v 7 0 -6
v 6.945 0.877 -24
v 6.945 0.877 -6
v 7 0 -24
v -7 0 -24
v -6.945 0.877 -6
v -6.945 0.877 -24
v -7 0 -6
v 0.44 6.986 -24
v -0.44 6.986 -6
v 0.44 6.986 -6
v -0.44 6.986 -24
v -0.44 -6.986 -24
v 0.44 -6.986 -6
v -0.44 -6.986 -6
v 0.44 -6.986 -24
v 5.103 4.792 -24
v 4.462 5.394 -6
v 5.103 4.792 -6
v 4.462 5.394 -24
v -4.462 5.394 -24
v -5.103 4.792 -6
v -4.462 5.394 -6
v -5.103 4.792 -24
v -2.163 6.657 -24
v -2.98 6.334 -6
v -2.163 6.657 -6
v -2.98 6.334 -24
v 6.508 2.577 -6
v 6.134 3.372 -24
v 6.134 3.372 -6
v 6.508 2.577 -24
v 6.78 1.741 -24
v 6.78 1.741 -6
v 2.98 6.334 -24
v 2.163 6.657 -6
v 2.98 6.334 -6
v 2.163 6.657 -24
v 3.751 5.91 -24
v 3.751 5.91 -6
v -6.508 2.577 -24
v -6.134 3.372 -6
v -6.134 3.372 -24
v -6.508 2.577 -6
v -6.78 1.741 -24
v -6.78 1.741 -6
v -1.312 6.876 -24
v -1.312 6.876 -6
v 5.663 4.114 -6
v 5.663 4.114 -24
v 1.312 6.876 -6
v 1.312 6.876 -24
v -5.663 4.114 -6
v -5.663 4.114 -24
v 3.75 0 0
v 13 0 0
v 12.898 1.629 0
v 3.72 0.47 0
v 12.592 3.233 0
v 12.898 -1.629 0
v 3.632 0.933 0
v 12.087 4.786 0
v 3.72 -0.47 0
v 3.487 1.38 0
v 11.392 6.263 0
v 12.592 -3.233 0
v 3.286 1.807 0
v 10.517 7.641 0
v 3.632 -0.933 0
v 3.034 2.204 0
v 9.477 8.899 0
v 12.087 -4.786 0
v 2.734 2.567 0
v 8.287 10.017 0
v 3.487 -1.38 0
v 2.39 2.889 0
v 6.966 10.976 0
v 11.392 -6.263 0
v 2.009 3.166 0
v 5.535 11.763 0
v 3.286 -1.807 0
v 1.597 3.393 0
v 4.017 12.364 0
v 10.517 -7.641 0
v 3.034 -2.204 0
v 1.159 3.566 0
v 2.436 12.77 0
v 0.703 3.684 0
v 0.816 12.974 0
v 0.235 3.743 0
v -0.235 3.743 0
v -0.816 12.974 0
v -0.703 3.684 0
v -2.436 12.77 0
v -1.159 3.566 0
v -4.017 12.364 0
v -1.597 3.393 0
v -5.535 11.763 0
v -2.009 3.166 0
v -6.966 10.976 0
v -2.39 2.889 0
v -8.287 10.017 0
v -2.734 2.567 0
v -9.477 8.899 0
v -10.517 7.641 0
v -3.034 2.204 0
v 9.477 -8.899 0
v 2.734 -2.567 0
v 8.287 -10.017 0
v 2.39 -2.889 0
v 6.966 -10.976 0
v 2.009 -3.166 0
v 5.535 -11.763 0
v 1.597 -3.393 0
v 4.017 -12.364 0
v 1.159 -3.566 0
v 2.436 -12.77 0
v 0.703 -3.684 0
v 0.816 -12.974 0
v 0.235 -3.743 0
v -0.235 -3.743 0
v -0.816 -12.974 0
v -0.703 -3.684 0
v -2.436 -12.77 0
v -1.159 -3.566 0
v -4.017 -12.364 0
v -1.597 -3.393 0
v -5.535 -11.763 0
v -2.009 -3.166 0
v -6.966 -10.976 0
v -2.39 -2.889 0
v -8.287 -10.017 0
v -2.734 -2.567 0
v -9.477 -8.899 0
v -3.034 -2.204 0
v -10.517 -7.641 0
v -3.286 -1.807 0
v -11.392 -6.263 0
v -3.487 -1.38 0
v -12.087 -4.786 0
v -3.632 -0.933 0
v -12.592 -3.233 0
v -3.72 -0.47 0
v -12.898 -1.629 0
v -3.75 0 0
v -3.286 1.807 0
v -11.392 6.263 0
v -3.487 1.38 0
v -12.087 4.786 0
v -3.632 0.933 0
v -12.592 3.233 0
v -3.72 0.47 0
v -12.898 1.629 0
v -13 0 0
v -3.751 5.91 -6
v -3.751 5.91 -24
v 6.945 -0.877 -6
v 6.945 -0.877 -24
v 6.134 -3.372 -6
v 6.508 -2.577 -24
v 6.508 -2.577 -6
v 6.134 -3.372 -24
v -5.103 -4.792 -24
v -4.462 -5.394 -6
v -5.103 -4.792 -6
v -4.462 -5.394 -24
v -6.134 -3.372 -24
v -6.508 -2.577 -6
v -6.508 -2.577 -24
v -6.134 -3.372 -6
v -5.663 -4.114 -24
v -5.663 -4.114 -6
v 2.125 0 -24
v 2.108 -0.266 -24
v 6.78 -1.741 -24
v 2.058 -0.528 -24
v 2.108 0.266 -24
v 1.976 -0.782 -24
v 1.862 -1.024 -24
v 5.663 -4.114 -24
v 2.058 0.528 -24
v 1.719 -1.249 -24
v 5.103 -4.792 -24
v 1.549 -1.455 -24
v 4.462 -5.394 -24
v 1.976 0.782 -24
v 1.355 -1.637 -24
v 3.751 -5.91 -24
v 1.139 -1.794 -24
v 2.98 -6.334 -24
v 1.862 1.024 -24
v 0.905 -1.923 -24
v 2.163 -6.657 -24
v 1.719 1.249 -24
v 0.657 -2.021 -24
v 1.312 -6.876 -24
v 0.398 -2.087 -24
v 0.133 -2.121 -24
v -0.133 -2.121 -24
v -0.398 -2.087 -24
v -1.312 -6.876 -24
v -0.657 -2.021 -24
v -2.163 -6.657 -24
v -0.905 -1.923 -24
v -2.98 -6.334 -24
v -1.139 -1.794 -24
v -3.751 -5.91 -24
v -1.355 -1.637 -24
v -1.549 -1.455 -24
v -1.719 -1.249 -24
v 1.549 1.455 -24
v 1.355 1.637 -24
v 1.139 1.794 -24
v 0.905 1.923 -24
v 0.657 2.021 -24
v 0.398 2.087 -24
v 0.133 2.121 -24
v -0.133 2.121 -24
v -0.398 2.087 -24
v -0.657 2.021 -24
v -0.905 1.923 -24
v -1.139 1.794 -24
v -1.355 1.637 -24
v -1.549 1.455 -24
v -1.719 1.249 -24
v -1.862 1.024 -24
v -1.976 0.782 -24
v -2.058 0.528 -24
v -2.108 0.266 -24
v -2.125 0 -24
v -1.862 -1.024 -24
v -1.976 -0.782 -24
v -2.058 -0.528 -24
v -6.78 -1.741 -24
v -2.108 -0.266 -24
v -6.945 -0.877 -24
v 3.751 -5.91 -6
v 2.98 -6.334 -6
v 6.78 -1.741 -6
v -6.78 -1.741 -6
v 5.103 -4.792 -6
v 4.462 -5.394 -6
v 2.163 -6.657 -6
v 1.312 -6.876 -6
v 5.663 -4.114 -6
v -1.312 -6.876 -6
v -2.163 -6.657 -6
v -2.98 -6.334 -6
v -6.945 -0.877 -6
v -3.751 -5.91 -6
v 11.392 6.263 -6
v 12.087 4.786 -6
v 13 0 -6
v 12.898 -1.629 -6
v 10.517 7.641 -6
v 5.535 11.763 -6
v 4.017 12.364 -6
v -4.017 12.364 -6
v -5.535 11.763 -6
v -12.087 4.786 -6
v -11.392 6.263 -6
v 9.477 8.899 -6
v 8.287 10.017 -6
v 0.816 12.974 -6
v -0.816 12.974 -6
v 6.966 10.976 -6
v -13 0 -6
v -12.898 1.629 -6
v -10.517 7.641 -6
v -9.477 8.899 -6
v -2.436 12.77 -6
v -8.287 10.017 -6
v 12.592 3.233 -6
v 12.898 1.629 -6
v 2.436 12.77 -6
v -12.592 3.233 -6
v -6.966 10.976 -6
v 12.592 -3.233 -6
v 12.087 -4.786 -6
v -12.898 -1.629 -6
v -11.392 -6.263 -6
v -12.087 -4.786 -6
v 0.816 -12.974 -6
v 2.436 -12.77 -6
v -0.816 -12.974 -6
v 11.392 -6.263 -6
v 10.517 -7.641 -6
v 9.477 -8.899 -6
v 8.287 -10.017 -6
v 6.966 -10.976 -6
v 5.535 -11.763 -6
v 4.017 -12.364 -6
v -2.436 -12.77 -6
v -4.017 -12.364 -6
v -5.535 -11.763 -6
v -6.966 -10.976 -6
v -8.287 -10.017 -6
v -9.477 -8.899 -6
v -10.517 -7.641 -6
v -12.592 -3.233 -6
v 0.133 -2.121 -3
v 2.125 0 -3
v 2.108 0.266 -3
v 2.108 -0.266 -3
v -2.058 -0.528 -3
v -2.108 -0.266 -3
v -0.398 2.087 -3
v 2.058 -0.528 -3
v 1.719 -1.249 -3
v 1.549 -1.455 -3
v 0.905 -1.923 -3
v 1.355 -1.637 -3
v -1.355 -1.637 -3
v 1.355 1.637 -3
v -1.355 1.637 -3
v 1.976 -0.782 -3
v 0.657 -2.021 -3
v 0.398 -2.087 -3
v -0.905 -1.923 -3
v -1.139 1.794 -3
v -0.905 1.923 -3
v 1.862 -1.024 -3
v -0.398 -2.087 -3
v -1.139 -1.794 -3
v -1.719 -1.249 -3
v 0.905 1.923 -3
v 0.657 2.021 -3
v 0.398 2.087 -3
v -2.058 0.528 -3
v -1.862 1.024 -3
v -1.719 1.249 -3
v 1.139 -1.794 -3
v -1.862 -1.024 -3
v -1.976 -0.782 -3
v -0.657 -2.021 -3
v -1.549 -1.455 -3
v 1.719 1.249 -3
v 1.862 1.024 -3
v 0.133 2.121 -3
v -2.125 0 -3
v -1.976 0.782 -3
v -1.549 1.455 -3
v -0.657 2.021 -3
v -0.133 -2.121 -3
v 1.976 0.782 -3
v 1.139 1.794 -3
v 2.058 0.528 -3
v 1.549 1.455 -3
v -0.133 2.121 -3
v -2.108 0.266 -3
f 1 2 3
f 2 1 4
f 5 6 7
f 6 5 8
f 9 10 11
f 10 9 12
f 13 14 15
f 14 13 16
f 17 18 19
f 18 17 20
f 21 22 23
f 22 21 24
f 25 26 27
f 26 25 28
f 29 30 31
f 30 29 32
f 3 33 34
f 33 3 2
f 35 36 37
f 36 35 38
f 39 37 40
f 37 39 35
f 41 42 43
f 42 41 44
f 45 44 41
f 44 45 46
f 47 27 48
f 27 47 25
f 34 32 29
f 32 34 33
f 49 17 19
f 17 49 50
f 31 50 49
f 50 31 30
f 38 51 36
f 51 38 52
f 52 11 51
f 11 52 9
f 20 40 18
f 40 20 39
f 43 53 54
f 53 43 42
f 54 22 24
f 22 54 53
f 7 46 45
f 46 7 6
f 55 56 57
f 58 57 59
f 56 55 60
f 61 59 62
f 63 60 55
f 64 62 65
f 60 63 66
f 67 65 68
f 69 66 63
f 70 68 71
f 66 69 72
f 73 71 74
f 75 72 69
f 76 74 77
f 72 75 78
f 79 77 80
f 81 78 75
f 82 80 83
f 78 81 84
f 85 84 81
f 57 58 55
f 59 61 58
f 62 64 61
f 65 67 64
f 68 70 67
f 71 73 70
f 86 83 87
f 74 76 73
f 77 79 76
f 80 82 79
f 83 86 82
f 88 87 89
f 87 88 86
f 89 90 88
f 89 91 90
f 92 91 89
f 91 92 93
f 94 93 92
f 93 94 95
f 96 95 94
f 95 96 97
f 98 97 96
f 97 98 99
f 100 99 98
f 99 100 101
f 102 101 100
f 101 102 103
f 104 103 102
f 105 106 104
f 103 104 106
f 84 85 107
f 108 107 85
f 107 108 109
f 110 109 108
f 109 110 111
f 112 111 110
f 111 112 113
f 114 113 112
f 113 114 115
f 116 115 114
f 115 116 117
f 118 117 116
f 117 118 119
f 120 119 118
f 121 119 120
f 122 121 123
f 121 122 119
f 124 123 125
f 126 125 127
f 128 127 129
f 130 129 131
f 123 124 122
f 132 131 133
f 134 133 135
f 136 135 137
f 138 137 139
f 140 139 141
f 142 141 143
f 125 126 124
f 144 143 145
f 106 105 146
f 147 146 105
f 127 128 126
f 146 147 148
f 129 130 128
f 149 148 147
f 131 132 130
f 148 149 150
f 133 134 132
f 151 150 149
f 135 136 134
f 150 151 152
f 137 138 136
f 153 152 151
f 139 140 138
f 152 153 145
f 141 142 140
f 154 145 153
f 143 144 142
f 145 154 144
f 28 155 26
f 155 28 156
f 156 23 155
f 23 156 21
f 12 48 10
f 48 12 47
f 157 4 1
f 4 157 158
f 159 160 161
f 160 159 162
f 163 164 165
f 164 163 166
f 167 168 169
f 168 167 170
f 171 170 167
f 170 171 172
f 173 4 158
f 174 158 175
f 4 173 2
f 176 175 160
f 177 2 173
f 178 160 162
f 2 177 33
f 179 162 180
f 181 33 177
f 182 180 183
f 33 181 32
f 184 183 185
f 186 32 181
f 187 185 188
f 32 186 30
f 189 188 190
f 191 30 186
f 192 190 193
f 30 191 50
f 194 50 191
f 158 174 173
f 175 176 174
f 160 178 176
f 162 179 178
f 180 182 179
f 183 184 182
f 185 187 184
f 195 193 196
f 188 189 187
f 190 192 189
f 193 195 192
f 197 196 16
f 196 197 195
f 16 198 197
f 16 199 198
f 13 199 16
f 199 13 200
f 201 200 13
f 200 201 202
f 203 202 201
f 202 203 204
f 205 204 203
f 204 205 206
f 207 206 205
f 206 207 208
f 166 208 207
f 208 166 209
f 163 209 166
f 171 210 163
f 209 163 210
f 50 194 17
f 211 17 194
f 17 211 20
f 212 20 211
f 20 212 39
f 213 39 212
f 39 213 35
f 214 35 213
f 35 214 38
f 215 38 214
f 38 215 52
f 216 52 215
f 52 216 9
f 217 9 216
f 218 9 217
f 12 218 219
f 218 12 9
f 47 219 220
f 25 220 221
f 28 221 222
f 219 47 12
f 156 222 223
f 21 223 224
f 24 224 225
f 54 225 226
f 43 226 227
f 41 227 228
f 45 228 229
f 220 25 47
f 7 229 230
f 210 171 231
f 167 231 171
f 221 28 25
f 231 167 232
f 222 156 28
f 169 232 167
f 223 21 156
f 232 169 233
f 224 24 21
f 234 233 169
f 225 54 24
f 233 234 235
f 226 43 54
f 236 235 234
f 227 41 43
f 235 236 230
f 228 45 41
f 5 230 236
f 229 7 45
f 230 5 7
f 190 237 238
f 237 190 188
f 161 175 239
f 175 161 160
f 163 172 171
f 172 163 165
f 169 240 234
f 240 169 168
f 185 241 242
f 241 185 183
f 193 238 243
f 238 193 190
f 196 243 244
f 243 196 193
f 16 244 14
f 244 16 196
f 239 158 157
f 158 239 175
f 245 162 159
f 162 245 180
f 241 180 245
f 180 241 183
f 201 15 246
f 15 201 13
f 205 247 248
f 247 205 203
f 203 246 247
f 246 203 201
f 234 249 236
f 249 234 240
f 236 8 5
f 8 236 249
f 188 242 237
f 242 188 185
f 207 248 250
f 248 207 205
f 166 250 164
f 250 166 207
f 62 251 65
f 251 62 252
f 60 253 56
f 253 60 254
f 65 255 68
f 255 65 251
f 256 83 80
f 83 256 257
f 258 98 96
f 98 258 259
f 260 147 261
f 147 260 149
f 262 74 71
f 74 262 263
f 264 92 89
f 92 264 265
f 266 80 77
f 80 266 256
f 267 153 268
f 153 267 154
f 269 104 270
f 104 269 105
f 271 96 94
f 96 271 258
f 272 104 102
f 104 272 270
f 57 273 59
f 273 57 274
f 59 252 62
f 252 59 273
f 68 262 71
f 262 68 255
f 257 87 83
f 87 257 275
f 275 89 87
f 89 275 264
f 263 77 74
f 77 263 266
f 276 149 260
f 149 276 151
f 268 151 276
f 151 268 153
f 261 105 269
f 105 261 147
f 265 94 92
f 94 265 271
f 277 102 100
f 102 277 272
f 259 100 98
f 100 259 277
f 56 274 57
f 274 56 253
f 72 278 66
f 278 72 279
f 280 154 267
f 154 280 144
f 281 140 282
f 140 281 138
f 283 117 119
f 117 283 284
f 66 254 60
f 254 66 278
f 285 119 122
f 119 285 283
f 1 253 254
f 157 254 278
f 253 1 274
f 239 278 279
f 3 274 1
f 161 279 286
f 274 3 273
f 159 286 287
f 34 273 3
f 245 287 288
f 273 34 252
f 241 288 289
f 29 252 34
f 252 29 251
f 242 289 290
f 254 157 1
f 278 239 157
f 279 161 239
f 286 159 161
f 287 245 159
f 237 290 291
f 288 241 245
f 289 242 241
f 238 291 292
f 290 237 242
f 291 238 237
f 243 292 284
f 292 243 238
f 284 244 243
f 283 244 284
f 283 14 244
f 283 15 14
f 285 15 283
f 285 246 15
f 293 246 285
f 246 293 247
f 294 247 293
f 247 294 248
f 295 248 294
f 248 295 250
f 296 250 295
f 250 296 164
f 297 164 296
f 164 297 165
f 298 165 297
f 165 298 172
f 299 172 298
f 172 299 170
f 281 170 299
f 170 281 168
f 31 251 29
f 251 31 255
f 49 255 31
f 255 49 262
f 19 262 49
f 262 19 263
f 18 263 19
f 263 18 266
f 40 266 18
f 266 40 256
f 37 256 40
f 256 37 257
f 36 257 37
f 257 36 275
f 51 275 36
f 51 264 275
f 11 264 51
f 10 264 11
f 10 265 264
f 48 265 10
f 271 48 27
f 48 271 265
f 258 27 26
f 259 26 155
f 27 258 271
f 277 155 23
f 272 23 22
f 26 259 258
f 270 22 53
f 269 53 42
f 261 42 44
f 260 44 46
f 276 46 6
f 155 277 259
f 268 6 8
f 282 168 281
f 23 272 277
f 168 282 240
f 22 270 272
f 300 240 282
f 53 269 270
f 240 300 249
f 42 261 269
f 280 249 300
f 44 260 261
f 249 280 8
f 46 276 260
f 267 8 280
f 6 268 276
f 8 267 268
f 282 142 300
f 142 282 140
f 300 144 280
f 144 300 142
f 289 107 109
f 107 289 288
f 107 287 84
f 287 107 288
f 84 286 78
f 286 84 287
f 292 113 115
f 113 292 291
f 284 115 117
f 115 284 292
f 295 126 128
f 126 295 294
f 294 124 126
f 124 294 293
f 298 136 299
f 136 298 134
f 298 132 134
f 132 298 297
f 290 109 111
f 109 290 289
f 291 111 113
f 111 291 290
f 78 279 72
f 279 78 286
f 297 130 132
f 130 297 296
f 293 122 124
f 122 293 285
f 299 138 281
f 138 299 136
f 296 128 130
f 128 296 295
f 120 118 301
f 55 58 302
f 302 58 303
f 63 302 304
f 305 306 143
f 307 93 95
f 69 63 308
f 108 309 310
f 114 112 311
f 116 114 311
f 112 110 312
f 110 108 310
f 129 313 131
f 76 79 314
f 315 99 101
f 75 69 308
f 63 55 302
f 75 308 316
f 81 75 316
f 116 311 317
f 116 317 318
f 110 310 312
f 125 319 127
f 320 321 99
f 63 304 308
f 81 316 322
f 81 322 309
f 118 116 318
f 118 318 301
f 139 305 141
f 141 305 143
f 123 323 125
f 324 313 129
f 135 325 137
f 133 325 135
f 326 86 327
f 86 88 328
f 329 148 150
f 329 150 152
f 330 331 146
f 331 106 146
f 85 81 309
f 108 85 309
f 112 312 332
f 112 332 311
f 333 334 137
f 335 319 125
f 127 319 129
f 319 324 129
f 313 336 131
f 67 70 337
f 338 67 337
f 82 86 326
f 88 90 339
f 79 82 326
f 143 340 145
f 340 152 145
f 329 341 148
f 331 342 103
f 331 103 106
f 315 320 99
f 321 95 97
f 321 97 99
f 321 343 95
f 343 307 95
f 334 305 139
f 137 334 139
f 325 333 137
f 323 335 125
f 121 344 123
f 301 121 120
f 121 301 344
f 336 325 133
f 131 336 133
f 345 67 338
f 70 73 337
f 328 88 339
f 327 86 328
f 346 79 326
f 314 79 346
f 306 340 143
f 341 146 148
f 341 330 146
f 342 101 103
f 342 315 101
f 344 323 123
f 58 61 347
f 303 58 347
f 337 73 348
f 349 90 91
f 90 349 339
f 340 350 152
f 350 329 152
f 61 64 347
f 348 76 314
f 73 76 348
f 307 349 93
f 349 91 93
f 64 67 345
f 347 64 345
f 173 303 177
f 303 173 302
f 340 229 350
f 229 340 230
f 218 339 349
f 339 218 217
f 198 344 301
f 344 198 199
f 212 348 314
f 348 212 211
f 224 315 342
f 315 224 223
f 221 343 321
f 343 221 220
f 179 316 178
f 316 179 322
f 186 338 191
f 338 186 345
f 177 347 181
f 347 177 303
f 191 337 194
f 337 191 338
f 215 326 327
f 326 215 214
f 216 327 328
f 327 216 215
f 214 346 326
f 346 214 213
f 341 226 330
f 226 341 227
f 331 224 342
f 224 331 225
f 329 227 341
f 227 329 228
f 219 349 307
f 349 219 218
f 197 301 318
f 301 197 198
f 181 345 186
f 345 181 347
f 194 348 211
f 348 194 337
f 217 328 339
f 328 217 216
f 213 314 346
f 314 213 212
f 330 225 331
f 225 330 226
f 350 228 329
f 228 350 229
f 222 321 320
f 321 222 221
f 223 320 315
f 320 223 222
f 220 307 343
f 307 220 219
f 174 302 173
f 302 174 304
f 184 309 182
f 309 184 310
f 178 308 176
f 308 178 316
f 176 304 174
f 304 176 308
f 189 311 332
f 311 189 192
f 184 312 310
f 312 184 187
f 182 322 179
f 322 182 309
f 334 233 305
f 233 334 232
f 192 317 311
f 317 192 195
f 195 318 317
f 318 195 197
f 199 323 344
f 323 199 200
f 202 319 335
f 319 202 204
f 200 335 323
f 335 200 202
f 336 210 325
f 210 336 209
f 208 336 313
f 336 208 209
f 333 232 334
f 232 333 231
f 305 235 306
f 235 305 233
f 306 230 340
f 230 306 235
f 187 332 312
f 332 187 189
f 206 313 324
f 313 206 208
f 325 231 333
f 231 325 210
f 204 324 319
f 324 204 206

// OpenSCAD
$fn = 50;


difference() {
	union() {
		translate(v = [0, 0, -24.0000000000]) {
			cylinder(h = 24, r = 7.0000000000);
		}
		translate(v = [0, 0, -6.0000000000]) {
			cylinder(h = 6, r = 13.0000000000);
		}
	}
	union() {
		translate(v = [0, 0, 0]) {
			rotate(a = [0, 0, 0]) {
				difference() {
					union() {
						#translate(v = [0, 0, -24.0000000000]) {
							cylinder(h = 24, r = 2.0000000000);
						}
						#translate(v = [0, 0, -3]) {
							cylinder(h = 3, r = 7.0000000000, r1 = 2.1250000000, r2 = 3.7500000000);
						}
						#translate(v = [0, 0, -24.0000000000]) {
							cylinder(h = 24, r = 2.1250000000);
						}
						#translate(v = [0, 0, -24.0000000000]) {
							cylinder(h = 24, r = 2.0000000000);
						}
					}
					union();
				}
			}
		}
	}
}
